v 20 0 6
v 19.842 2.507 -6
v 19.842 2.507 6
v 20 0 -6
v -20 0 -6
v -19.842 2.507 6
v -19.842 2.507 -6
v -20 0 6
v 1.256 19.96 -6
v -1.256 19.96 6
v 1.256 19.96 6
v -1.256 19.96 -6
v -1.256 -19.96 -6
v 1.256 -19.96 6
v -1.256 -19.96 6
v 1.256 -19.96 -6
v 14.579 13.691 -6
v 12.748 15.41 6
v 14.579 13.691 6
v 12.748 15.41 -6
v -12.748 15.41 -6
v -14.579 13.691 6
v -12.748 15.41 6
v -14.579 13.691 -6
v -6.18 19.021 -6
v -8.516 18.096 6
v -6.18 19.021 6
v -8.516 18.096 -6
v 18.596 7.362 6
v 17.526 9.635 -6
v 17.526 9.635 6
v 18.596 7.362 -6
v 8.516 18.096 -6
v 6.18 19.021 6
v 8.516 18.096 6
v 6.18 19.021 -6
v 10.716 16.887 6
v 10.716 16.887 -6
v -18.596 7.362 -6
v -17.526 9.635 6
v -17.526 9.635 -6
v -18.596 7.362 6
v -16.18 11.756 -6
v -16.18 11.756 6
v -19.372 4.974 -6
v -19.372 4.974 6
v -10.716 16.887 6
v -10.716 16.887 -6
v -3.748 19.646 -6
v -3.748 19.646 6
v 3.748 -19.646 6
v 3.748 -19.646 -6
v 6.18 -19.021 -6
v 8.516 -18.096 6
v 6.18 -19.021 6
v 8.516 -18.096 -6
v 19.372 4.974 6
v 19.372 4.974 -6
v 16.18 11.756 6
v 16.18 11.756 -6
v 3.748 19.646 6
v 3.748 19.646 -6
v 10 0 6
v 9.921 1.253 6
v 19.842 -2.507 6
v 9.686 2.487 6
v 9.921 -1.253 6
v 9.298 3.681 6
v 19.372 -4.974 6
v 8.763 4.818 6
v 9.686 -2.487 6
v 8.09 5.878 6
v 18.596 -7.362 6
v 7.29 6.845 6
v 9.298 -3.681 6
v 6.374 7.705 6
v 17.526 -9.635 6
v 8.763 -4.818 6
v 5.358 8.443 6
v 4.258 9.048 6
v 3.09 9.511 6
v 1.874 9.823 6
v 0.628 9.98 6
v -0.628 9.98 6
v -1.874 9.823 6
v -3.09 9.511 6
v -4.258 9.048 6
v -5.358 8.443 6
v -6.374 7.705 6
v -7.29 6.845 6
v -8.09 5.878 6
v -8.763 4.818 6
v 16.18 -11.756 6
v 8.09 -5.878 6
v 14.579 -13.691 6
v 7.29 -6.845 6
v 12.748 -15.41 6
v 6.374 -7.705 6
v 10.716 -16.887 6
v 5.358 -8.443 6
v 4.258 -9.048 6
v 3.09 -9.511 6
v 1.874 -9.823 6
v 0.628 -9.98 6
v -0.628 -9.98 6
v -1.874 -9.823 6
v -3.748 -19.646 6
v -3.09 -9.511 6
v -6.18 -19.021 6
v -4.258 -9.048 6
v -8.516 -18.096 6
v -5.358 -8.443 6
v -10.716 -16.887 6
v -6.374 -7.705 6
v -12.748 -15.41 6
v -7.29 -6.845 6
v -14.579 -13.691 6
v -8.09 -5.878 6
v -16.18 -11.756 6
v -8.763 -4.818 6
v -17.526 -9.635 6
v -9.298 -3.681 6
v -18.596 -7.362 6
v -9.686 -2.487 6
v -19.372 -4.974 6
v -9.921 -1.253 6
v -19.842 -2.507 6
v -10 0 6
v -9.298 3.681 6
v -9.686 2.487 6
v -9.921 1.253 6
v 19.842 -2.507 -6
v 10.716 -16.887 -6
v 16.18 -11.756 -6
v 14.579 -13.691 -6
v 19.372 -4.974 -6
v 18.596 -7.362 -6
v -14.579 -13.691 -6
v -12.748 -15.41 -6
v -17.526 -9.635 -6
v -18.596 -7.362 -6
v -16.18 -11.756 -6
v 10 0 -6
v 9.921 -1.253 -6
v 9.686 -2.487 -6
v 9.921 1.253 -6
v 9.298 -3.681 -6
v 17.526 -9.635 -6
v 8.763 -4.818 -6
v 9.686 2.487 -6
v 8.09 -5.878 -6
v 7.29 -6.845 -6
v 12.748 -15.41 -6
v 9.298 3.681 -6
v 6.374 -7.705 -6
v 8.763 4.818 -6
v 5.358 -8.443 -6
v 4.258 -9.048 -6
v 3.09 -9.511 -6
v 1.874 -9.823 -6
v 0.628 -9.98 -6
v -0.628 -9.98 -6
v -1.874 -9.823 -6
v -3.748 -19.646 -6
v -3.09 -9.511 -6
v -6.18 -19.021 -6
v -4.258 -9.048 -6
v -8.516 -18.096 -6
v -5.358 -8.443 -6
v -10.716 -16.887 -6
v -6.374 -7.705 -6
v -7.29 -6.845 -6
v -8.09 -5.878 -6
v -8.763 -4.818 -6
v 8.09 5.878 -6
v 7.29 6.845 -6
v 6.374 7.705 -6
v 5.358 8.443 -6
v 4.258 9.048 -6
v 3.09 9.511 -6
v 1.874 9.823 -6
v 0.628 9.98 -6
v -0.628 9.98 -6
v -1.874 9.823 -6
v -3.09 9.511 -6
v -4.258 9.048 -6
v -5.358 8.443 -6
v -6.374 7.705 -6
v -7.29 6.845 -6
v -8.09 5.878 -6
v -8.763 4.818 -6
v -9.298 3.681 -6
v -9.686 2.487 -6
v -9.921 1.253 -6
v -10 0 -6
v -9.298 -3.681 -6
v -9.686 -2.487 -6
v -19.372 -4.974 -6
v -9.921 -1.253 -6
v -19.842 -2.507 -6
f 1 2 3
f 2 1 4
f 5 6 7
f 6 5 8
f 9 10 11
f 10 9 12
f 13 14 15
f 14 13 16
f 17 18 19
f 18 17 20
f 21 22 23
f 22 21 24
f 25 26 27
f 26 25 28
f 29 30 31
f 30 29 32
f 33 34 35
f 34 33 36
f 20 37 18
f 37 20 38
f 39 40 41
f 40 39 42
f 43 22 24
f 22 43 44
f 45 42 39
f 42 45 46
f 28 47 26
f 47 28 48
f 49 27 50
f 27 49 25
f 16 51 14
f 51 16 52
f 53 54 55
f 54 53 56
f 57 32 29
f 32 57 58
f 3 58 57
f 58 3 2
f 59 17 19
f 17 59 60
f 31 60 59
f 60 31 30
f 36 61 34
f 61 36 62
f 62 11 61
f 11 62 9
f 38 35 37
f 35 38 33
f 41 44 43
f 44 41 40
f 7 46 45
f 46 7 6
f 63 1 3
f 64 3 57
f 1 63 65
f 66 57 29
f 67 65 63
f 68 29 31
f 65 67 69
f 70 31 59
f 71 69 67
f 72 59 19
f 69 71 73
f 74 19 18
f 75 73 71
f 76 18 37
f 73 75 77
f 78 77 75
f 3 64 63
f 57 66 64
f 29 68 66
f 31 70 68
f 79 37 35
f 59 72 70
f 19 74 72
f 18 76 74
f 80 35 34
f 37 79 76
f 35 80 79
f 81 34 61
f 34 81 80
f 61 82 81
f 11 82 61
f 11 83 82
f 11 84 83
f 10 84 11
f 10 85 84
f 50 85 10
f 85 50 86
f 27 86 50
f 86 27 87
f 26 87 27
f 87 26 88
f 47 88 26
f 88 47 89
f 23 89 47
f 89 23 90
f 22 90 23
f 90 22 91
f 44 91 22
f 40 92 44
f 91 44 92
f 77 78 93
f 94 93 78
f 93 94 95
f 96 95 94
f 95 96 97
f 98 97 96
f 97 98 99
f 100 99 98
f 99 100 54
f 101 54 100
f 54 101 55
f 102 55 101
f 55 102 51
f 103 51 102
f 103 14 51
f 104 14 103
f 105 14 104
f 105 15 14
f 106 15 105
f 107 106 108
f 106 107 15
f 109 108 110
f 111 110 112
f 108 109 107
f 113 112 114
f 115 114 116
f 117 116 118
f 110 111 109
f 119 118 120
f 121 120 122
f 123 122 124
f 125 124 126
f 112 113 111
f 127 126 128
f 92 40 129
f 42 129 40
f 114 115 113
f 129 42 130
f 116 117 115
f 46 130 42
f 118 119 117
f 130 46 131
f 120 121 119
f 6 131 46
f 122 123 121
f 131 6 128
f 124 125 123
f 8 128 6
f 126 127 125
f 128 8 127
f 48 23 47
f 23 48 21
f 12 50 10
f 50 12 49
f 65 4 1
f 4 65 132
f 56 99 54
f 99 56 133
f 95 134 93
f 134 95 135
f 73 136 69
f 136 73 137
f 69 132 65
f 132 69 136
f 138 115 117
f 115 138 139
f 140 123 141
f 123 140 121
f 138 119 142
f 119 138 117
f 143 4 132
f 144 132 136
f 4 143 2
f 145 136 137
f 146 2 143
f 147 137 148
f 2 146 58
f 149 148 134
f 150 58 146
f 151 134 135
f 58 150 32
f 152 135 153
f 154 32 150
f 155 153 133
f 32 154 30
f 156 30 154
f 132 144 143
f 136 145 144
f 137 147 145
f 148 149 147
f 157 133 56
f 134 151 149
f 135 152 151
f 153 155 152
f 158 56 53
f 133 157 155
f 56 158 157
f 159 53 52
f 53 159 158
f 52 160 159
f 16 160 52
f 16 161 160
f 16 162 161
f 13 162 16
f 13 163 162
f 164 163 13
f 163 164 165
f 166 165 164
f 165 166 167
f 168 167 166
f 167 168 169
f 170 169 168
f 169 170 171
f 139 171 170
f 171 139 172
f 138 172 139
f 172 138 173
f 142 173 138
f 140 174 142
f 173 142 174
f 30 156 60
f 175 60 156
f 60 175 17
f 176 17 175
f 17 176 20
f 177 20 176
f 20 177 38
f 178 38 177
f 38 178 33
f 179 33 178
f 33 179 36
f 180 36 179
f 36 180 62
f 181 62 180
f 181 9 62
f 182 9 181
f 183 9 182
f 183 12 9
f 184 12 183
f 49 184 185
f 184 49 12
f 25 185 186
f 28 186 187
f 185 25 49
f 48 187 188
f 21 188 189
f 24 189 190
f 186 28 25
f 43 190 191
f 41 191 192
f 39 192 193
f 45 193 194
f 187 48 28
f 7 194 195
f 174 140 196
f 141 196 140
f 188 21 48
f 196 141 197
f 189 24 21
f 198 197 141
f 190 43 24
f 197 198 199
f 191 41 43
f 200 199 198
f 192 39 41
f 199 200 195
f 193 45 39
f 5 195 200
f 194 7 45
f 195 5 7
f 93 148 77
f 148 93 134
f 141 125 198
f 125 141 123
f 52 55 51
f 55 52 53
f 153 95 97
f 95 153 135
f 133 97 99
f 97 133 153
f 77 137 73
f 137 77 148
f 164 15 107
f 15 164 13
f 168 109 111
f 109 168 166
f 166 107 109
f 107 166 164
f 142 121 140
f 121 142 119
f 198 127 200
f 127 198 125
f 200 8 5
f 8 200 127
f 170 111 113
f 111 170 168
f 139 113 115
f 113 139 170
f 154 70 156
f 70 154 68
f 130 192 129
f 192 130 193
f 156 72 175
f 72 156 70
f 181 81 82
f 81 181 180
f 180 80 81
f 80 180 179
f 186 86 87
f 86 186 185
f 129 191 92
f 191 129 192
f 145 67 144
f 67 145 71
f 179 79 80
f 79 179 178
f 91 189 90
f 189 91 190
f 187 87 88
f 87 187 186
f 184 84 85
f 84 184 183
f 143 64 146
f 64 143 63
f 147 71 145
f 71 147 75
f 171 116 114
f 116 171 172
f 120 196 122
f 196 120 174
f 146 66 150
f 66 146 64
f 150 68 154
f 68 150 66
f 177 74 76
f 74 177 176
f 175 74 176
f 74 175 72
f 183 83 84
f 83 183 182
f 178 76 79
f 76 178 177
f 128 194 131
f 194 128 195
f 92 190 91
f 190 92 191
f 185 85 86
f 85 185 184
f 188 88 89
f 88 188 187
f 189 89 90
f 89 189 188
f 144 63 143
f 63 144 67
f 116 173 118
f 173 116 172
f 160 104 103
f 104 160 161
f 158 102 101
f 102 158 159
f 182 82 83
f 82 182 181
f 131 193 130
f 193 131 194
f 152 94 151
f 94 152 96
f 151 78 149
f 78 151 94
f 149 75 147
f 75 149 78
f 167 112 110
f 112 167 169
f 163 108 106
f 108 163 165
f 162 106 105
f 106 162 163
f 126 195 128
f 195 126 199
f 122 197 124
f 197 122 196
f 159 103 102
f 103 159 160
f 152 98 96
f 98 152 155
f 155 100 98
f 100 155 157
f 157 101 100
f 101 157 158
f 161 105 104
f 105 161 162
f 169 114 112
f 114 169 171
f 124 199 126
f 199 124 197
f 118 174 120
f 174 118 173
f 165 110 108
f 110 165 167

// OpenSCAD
$fn = 50;


difference() {
	union() {
		translate(v = [0, 0, -6.0000000000]) {
			cylinder(h = 12, r = 20.0000000000);
		}
	}
	union() {
		translate(v = [0, 0, -100.0000000000]) {
			cylinder(h = 200, r = 10);
		}
	}
}
